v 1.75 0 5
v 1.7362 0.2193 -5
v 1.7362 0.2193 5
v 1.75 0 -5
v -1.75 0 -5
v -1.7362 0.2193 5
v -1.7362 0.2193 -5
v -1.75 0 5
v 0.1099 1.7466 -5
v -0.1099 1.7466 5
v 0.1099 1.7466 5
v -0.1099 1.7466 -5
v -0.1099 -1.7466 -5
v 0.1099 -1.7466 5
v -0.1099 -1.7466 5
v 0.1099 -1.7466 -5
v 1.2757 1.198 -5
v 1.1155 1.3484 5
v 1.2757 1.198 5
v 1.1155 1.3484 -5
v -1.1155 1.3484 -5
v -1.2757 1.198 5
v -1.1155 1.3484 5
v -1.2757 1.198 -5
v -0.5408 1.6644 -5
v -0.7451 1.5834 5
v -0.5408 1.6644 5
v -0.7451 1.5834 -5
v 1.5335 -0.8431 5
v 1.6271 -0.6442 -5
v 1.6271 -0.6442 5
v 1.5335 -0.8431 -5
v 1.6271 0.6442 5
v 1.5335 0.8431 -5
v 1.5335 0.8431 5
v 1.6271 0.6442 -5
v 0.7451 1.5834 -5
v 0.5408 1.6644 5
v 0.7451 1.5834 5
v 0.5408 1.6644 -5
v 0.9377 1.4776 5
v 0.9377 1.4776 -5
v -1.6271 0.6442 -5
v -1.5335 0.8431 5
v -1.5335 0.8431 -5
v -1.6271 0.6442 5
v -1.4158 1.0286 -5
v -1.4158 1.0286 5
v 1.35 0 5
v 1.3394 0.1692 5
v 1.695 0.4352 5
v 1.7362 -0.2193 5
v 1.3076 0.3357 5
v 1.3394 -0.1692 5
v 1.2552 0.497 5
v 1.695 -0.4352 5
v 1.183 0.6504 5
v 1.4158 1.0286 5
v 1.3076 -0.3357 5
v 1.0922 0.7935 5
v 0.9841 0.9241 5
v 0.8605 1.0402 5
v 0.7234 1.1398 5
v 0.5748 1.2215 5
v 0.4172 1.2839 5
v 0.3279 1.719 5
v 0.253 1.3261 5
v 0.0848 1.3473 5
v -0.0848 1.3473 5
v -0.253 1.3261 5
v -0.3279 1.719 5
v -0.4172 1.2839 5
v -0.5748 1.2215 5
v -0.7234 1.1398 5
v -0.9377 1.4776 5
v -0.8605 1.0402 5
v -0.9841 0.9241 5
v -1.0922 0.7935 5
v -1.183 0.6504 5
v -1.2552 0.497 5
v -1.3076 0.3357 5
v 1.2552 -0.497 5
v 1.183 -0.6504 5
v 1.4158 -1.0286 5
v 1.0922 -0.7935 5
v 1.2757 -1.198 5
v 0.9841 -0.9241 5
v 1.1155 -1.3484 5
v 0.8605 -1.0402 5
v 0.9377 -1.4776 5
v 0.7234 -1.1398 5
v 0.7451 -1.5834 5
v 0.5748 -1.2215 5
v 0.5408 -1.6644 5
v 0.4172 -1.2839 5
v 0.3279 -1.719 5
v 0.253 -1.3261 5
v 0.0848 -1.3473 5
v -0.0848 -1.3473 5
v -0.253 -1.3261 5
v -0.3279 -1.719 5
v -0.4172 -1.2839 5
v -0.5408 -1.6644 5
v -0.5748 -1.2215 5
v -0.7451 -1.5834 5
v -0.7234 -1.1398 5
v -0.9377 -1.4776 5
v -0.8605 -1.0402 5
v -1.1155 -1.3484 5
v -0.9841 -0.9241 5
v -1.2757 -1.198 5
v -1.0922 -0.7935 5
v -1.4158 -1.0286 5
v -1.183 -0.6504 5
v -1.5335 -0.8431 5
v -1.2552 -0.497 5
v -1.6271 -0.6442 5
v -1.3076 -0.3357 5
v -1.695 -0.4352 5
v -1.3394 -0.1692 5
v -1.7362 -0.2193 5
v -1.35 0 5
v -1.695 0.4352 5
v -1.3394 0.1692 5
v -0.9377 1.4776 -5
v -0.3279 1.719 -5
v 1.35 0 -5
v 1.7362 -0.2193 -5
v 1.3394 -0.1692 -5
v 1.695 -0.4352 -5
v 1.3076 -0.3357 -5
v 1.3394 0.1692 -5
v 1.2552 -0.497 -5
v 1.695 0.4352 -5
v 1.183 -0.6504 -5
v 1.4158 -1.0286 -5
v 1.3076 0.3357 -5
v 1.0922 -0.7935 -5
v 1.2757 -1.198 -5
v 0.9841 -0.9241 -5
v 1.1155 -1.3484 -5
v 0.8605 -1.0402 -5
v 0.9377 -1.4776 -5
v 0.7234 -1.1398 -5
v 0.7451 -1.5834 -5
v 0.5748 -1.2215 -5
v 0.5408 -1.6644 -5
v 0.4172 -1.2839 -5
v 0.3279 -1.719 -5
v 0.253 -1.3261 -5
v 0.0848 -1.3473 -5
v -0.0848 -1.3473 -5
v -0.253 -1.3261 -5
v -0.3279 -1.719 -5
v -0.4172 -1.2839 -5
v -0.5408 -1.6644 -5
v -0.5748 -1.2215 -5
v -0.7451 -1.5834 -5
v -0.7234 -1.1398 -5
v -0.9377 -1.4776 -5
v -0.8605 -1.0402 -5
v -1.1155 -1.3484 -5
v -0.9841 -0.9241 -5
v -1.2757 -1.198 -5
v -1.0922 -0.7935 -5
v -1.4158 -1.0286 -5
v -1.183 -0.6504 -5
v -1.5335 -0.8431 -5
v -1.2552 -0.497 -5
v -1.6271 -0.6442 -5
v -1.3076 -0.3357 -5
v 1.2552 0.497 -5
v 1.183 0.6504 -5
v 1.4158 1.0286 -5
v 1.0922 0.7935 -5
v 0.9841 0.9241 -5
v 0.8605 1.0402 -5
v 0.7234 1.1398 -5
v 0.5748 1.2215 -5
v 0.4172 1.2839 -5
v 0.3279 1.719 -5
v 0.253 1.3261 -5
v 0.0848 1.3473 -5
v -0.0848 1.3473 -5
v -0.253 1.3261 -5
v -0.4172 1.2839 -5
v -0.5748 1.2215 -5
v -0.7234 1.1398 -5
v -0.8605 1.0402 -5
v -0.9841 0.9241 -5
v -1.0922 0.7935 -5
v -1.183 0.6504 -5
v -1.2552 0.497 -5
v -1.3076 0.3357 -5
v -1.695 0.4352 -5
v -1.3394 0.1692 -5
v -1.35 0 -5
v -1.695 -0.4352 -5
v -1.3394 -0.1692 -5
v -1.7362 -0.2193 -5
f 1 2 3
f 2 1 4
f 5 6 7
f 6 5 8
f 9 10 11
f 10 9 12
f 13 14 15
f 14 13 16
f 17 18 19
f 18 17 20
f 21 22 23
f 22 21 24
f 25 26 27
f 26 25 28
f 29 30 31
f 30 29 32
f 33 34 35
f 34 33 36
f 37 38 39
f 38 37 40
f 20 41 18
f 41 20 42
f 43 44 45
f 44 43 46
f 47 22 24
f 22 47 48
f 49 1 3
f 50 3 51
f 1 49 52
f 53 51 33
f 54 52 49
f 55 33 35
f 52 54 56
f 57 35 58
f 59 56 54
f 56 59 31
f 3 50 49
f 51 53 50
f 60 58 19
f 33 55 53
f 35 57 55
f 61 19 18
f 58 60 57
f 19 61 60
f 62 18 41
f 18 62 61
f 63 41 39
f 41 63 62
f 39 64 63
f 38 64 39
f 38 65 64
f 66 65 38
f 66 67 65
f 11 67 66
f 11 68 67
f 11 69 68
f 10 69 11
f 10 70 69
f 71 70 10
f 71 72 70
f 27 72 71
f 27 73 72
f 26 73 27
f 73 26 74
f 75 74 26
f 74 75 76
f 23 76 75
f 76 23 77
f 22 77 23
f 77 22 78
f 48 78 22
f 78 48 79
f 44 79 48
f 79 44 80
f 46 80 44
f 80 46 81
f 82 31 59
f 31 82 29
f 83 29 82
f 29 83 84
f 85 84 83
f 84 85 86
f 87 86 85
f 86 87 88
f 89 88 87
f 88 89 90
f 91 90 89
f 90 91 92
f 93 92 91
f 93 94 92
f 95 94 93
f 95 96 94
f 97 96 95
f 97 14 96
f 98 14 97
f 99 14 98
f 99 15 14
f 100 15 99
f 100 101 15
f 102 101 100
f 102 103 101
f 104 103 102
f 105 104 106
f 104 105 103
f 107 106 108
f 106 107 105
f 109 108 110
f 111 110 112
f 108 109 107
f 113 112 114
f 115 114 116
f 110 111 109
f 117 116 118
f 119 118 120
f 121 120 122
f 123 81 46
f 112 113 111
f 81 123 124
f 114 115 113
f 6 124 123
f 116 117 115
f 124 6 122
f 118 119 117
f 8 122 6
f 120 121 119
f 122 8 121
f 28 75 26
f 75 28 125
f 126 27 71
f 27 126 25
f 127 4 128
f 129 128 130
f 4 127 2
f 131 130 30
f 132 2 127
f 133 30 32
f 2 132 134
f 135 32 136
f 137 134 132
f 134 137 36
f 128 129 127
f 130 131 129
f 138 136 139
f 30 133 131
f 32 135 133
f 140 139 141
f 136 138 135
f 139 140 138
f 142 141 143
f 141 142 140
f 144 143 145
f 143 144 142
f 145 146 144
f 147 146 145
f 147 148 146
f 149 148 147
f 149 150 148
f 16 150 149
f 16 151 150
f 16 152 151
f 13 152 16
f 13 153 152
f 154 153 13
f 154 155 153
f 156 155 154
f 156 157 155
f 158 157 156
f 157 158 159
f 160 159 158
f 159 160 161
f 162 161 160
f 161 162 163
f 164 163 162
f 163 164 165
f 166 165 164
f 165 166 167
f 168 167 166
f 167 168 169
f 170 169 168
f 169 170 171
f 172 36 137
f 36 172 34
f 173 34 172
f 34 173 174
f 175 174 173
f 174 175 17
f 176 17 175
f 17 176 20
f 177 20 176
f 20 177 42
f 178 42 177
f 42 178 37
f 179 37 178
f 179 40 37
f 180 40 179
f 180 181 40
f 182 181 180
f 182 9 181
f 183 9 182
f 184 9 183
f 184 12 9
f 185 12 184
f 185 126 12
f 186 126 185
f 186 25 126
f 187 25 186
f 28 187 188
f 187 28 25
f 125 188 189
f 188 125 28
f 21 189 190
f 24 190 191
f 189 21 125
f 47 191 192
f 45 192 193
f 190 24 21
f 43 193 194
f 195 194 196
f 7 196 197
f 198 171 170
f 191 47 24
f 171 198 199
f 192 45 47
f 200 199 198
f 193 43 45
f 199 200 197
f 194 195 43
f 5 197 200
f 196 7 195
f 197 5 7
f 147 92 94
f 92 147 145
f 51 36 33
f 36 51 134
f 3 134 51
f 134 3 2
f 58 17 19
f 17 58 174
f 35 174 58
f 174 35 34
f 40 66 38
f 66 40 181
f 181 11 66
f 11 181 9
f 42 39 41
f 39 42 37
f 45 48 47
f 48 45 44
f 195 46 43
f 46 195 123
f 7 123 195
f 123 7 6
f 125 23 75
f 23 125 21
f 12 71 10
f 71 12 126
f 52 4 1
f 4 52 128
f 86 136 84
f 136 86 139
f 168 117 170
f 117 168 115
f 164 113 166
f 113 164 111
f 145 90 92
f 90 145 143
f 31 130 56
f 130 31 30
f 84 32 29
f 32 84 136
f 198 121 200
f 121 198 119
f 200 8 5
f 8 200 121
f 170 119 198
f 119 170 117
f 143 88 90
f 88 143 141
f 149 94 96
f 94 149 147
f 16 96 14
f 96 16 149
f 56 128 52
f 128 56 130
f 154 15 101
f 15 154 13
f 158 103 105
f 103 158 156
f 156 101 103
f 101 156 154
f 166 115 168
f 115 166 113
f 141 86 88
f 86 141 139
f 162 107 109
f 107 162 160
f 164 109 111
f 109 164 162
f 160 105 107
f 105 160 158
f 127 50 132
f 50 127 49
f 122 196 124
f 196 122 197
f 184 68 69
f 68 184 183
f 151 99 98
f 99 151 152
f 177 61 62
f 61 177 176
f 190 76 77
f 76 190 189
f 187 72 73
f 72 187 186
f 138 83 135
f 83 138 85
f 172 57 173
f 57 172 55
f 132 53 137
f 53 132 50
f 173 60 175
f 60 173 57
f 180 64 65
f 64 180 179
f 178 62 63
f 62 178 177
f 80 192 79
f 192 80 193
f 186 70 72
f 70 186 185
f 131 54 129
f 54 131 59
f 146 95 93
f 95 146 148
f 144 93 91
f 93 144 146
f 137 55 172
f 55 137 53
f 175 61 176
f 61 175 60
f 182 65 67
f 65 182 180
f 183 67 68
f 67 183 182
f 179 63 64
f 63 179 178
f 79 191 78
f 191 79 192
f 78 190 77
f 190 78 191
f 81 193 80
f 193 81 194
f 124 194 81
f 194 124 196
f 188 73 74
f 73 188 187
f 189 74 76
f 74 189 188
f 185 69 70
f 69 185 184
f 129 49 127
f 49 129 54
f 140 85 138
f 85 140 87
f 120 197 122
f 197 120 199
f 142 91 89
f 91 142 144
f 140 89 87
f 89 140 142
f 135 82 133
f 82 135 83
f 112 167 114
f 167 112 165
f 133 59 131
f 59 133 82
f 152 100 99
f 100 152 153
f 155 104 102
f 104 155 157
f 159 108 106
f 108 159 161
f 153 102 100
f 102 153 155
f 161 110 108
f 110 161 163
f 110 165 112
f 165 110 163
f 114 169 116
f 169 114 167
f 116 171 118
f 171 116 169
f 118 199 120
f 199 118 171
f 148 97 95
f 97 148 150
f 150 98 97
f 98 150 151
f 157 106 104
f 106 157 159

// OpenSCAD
$fn = 50;


difference() {
	union() {
		translate(v = [0, 0, -5.0000000000]) {
			cylinder(h = 10, r = 1.7500000000);
		}
	}
	union() {
		translate(v = [0, 0, -100.0000000000]) {
			cylinder(h = 200, r = 1.3500000000);
		}
	}
}
